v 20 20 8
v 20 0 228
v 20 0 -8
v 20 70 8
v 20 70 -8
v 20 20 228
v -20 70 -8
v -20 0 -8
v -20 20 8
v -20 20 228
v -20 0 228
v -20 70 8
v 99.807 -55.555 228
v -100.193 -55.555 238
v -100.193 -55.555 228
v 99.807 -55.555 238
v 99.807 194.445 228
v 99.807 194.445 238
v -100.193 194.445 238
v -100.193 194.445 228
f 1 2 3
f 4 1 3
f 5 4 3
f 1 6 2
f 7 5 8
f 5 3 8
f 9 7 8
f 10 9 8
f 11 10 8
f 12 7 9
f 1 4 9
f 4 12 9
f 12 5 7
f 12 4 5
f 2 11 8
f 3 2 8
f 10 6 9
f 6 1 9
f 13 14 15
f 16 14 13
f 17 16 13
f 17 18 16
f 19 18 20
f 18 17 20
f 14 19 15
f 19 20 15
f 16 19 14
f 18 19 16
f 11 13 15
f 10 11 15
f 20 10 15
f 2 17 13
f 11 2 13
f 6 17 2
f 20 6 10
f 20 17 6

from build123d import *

# Parameters (mm, degrees)
SKETCH_1_W      = 40
SKETCH_1_H      = 16
EXTRUDE_1_DEPTH = 70
SKETCH_2_W      = 40
SKETCH_2_H      = 20
EXTRUDE_2_DEPTH = 220
SKETCH_4_W      = 200
SKETCH_4_H      = 250
EXTRUDE_4_DEPTH = 10


with BuildPart() as part:
    # 草图1 → 凸台-拉伸1 (new body)
    with BuildSketch(Plane(origin=(0, 0, 0), x_dir=(1, 0, 0), z_dir=(0, 1, 0))):
        Rectangle(SKETCH_1_W, SKETCH_1_H)
    extrude(amount=EXTRUDE_1_DEPTH)

    # 草图2 → 凸台-拉伸2 (add)
    with BuildSketch(Plane.XY.offset(8)):
        with Locations((0, 10)):
            Rectangle(SKETCH_2_W, SKETCH_2_H)
    extrude(amount=EXTRUDE_2_DEPTH)

    # 草图4 → 凸台-拉伸4 (add)
    with BuildSketch(Plane.XY.offset(228)):
        with Locations((-0.193037092, 69.445287213)):
            Rectangle(SKETCH_4_W, SKETCH_4_H)
    extrude(amount=EXTRUDE_4_DEPTH)


solid = part.part
